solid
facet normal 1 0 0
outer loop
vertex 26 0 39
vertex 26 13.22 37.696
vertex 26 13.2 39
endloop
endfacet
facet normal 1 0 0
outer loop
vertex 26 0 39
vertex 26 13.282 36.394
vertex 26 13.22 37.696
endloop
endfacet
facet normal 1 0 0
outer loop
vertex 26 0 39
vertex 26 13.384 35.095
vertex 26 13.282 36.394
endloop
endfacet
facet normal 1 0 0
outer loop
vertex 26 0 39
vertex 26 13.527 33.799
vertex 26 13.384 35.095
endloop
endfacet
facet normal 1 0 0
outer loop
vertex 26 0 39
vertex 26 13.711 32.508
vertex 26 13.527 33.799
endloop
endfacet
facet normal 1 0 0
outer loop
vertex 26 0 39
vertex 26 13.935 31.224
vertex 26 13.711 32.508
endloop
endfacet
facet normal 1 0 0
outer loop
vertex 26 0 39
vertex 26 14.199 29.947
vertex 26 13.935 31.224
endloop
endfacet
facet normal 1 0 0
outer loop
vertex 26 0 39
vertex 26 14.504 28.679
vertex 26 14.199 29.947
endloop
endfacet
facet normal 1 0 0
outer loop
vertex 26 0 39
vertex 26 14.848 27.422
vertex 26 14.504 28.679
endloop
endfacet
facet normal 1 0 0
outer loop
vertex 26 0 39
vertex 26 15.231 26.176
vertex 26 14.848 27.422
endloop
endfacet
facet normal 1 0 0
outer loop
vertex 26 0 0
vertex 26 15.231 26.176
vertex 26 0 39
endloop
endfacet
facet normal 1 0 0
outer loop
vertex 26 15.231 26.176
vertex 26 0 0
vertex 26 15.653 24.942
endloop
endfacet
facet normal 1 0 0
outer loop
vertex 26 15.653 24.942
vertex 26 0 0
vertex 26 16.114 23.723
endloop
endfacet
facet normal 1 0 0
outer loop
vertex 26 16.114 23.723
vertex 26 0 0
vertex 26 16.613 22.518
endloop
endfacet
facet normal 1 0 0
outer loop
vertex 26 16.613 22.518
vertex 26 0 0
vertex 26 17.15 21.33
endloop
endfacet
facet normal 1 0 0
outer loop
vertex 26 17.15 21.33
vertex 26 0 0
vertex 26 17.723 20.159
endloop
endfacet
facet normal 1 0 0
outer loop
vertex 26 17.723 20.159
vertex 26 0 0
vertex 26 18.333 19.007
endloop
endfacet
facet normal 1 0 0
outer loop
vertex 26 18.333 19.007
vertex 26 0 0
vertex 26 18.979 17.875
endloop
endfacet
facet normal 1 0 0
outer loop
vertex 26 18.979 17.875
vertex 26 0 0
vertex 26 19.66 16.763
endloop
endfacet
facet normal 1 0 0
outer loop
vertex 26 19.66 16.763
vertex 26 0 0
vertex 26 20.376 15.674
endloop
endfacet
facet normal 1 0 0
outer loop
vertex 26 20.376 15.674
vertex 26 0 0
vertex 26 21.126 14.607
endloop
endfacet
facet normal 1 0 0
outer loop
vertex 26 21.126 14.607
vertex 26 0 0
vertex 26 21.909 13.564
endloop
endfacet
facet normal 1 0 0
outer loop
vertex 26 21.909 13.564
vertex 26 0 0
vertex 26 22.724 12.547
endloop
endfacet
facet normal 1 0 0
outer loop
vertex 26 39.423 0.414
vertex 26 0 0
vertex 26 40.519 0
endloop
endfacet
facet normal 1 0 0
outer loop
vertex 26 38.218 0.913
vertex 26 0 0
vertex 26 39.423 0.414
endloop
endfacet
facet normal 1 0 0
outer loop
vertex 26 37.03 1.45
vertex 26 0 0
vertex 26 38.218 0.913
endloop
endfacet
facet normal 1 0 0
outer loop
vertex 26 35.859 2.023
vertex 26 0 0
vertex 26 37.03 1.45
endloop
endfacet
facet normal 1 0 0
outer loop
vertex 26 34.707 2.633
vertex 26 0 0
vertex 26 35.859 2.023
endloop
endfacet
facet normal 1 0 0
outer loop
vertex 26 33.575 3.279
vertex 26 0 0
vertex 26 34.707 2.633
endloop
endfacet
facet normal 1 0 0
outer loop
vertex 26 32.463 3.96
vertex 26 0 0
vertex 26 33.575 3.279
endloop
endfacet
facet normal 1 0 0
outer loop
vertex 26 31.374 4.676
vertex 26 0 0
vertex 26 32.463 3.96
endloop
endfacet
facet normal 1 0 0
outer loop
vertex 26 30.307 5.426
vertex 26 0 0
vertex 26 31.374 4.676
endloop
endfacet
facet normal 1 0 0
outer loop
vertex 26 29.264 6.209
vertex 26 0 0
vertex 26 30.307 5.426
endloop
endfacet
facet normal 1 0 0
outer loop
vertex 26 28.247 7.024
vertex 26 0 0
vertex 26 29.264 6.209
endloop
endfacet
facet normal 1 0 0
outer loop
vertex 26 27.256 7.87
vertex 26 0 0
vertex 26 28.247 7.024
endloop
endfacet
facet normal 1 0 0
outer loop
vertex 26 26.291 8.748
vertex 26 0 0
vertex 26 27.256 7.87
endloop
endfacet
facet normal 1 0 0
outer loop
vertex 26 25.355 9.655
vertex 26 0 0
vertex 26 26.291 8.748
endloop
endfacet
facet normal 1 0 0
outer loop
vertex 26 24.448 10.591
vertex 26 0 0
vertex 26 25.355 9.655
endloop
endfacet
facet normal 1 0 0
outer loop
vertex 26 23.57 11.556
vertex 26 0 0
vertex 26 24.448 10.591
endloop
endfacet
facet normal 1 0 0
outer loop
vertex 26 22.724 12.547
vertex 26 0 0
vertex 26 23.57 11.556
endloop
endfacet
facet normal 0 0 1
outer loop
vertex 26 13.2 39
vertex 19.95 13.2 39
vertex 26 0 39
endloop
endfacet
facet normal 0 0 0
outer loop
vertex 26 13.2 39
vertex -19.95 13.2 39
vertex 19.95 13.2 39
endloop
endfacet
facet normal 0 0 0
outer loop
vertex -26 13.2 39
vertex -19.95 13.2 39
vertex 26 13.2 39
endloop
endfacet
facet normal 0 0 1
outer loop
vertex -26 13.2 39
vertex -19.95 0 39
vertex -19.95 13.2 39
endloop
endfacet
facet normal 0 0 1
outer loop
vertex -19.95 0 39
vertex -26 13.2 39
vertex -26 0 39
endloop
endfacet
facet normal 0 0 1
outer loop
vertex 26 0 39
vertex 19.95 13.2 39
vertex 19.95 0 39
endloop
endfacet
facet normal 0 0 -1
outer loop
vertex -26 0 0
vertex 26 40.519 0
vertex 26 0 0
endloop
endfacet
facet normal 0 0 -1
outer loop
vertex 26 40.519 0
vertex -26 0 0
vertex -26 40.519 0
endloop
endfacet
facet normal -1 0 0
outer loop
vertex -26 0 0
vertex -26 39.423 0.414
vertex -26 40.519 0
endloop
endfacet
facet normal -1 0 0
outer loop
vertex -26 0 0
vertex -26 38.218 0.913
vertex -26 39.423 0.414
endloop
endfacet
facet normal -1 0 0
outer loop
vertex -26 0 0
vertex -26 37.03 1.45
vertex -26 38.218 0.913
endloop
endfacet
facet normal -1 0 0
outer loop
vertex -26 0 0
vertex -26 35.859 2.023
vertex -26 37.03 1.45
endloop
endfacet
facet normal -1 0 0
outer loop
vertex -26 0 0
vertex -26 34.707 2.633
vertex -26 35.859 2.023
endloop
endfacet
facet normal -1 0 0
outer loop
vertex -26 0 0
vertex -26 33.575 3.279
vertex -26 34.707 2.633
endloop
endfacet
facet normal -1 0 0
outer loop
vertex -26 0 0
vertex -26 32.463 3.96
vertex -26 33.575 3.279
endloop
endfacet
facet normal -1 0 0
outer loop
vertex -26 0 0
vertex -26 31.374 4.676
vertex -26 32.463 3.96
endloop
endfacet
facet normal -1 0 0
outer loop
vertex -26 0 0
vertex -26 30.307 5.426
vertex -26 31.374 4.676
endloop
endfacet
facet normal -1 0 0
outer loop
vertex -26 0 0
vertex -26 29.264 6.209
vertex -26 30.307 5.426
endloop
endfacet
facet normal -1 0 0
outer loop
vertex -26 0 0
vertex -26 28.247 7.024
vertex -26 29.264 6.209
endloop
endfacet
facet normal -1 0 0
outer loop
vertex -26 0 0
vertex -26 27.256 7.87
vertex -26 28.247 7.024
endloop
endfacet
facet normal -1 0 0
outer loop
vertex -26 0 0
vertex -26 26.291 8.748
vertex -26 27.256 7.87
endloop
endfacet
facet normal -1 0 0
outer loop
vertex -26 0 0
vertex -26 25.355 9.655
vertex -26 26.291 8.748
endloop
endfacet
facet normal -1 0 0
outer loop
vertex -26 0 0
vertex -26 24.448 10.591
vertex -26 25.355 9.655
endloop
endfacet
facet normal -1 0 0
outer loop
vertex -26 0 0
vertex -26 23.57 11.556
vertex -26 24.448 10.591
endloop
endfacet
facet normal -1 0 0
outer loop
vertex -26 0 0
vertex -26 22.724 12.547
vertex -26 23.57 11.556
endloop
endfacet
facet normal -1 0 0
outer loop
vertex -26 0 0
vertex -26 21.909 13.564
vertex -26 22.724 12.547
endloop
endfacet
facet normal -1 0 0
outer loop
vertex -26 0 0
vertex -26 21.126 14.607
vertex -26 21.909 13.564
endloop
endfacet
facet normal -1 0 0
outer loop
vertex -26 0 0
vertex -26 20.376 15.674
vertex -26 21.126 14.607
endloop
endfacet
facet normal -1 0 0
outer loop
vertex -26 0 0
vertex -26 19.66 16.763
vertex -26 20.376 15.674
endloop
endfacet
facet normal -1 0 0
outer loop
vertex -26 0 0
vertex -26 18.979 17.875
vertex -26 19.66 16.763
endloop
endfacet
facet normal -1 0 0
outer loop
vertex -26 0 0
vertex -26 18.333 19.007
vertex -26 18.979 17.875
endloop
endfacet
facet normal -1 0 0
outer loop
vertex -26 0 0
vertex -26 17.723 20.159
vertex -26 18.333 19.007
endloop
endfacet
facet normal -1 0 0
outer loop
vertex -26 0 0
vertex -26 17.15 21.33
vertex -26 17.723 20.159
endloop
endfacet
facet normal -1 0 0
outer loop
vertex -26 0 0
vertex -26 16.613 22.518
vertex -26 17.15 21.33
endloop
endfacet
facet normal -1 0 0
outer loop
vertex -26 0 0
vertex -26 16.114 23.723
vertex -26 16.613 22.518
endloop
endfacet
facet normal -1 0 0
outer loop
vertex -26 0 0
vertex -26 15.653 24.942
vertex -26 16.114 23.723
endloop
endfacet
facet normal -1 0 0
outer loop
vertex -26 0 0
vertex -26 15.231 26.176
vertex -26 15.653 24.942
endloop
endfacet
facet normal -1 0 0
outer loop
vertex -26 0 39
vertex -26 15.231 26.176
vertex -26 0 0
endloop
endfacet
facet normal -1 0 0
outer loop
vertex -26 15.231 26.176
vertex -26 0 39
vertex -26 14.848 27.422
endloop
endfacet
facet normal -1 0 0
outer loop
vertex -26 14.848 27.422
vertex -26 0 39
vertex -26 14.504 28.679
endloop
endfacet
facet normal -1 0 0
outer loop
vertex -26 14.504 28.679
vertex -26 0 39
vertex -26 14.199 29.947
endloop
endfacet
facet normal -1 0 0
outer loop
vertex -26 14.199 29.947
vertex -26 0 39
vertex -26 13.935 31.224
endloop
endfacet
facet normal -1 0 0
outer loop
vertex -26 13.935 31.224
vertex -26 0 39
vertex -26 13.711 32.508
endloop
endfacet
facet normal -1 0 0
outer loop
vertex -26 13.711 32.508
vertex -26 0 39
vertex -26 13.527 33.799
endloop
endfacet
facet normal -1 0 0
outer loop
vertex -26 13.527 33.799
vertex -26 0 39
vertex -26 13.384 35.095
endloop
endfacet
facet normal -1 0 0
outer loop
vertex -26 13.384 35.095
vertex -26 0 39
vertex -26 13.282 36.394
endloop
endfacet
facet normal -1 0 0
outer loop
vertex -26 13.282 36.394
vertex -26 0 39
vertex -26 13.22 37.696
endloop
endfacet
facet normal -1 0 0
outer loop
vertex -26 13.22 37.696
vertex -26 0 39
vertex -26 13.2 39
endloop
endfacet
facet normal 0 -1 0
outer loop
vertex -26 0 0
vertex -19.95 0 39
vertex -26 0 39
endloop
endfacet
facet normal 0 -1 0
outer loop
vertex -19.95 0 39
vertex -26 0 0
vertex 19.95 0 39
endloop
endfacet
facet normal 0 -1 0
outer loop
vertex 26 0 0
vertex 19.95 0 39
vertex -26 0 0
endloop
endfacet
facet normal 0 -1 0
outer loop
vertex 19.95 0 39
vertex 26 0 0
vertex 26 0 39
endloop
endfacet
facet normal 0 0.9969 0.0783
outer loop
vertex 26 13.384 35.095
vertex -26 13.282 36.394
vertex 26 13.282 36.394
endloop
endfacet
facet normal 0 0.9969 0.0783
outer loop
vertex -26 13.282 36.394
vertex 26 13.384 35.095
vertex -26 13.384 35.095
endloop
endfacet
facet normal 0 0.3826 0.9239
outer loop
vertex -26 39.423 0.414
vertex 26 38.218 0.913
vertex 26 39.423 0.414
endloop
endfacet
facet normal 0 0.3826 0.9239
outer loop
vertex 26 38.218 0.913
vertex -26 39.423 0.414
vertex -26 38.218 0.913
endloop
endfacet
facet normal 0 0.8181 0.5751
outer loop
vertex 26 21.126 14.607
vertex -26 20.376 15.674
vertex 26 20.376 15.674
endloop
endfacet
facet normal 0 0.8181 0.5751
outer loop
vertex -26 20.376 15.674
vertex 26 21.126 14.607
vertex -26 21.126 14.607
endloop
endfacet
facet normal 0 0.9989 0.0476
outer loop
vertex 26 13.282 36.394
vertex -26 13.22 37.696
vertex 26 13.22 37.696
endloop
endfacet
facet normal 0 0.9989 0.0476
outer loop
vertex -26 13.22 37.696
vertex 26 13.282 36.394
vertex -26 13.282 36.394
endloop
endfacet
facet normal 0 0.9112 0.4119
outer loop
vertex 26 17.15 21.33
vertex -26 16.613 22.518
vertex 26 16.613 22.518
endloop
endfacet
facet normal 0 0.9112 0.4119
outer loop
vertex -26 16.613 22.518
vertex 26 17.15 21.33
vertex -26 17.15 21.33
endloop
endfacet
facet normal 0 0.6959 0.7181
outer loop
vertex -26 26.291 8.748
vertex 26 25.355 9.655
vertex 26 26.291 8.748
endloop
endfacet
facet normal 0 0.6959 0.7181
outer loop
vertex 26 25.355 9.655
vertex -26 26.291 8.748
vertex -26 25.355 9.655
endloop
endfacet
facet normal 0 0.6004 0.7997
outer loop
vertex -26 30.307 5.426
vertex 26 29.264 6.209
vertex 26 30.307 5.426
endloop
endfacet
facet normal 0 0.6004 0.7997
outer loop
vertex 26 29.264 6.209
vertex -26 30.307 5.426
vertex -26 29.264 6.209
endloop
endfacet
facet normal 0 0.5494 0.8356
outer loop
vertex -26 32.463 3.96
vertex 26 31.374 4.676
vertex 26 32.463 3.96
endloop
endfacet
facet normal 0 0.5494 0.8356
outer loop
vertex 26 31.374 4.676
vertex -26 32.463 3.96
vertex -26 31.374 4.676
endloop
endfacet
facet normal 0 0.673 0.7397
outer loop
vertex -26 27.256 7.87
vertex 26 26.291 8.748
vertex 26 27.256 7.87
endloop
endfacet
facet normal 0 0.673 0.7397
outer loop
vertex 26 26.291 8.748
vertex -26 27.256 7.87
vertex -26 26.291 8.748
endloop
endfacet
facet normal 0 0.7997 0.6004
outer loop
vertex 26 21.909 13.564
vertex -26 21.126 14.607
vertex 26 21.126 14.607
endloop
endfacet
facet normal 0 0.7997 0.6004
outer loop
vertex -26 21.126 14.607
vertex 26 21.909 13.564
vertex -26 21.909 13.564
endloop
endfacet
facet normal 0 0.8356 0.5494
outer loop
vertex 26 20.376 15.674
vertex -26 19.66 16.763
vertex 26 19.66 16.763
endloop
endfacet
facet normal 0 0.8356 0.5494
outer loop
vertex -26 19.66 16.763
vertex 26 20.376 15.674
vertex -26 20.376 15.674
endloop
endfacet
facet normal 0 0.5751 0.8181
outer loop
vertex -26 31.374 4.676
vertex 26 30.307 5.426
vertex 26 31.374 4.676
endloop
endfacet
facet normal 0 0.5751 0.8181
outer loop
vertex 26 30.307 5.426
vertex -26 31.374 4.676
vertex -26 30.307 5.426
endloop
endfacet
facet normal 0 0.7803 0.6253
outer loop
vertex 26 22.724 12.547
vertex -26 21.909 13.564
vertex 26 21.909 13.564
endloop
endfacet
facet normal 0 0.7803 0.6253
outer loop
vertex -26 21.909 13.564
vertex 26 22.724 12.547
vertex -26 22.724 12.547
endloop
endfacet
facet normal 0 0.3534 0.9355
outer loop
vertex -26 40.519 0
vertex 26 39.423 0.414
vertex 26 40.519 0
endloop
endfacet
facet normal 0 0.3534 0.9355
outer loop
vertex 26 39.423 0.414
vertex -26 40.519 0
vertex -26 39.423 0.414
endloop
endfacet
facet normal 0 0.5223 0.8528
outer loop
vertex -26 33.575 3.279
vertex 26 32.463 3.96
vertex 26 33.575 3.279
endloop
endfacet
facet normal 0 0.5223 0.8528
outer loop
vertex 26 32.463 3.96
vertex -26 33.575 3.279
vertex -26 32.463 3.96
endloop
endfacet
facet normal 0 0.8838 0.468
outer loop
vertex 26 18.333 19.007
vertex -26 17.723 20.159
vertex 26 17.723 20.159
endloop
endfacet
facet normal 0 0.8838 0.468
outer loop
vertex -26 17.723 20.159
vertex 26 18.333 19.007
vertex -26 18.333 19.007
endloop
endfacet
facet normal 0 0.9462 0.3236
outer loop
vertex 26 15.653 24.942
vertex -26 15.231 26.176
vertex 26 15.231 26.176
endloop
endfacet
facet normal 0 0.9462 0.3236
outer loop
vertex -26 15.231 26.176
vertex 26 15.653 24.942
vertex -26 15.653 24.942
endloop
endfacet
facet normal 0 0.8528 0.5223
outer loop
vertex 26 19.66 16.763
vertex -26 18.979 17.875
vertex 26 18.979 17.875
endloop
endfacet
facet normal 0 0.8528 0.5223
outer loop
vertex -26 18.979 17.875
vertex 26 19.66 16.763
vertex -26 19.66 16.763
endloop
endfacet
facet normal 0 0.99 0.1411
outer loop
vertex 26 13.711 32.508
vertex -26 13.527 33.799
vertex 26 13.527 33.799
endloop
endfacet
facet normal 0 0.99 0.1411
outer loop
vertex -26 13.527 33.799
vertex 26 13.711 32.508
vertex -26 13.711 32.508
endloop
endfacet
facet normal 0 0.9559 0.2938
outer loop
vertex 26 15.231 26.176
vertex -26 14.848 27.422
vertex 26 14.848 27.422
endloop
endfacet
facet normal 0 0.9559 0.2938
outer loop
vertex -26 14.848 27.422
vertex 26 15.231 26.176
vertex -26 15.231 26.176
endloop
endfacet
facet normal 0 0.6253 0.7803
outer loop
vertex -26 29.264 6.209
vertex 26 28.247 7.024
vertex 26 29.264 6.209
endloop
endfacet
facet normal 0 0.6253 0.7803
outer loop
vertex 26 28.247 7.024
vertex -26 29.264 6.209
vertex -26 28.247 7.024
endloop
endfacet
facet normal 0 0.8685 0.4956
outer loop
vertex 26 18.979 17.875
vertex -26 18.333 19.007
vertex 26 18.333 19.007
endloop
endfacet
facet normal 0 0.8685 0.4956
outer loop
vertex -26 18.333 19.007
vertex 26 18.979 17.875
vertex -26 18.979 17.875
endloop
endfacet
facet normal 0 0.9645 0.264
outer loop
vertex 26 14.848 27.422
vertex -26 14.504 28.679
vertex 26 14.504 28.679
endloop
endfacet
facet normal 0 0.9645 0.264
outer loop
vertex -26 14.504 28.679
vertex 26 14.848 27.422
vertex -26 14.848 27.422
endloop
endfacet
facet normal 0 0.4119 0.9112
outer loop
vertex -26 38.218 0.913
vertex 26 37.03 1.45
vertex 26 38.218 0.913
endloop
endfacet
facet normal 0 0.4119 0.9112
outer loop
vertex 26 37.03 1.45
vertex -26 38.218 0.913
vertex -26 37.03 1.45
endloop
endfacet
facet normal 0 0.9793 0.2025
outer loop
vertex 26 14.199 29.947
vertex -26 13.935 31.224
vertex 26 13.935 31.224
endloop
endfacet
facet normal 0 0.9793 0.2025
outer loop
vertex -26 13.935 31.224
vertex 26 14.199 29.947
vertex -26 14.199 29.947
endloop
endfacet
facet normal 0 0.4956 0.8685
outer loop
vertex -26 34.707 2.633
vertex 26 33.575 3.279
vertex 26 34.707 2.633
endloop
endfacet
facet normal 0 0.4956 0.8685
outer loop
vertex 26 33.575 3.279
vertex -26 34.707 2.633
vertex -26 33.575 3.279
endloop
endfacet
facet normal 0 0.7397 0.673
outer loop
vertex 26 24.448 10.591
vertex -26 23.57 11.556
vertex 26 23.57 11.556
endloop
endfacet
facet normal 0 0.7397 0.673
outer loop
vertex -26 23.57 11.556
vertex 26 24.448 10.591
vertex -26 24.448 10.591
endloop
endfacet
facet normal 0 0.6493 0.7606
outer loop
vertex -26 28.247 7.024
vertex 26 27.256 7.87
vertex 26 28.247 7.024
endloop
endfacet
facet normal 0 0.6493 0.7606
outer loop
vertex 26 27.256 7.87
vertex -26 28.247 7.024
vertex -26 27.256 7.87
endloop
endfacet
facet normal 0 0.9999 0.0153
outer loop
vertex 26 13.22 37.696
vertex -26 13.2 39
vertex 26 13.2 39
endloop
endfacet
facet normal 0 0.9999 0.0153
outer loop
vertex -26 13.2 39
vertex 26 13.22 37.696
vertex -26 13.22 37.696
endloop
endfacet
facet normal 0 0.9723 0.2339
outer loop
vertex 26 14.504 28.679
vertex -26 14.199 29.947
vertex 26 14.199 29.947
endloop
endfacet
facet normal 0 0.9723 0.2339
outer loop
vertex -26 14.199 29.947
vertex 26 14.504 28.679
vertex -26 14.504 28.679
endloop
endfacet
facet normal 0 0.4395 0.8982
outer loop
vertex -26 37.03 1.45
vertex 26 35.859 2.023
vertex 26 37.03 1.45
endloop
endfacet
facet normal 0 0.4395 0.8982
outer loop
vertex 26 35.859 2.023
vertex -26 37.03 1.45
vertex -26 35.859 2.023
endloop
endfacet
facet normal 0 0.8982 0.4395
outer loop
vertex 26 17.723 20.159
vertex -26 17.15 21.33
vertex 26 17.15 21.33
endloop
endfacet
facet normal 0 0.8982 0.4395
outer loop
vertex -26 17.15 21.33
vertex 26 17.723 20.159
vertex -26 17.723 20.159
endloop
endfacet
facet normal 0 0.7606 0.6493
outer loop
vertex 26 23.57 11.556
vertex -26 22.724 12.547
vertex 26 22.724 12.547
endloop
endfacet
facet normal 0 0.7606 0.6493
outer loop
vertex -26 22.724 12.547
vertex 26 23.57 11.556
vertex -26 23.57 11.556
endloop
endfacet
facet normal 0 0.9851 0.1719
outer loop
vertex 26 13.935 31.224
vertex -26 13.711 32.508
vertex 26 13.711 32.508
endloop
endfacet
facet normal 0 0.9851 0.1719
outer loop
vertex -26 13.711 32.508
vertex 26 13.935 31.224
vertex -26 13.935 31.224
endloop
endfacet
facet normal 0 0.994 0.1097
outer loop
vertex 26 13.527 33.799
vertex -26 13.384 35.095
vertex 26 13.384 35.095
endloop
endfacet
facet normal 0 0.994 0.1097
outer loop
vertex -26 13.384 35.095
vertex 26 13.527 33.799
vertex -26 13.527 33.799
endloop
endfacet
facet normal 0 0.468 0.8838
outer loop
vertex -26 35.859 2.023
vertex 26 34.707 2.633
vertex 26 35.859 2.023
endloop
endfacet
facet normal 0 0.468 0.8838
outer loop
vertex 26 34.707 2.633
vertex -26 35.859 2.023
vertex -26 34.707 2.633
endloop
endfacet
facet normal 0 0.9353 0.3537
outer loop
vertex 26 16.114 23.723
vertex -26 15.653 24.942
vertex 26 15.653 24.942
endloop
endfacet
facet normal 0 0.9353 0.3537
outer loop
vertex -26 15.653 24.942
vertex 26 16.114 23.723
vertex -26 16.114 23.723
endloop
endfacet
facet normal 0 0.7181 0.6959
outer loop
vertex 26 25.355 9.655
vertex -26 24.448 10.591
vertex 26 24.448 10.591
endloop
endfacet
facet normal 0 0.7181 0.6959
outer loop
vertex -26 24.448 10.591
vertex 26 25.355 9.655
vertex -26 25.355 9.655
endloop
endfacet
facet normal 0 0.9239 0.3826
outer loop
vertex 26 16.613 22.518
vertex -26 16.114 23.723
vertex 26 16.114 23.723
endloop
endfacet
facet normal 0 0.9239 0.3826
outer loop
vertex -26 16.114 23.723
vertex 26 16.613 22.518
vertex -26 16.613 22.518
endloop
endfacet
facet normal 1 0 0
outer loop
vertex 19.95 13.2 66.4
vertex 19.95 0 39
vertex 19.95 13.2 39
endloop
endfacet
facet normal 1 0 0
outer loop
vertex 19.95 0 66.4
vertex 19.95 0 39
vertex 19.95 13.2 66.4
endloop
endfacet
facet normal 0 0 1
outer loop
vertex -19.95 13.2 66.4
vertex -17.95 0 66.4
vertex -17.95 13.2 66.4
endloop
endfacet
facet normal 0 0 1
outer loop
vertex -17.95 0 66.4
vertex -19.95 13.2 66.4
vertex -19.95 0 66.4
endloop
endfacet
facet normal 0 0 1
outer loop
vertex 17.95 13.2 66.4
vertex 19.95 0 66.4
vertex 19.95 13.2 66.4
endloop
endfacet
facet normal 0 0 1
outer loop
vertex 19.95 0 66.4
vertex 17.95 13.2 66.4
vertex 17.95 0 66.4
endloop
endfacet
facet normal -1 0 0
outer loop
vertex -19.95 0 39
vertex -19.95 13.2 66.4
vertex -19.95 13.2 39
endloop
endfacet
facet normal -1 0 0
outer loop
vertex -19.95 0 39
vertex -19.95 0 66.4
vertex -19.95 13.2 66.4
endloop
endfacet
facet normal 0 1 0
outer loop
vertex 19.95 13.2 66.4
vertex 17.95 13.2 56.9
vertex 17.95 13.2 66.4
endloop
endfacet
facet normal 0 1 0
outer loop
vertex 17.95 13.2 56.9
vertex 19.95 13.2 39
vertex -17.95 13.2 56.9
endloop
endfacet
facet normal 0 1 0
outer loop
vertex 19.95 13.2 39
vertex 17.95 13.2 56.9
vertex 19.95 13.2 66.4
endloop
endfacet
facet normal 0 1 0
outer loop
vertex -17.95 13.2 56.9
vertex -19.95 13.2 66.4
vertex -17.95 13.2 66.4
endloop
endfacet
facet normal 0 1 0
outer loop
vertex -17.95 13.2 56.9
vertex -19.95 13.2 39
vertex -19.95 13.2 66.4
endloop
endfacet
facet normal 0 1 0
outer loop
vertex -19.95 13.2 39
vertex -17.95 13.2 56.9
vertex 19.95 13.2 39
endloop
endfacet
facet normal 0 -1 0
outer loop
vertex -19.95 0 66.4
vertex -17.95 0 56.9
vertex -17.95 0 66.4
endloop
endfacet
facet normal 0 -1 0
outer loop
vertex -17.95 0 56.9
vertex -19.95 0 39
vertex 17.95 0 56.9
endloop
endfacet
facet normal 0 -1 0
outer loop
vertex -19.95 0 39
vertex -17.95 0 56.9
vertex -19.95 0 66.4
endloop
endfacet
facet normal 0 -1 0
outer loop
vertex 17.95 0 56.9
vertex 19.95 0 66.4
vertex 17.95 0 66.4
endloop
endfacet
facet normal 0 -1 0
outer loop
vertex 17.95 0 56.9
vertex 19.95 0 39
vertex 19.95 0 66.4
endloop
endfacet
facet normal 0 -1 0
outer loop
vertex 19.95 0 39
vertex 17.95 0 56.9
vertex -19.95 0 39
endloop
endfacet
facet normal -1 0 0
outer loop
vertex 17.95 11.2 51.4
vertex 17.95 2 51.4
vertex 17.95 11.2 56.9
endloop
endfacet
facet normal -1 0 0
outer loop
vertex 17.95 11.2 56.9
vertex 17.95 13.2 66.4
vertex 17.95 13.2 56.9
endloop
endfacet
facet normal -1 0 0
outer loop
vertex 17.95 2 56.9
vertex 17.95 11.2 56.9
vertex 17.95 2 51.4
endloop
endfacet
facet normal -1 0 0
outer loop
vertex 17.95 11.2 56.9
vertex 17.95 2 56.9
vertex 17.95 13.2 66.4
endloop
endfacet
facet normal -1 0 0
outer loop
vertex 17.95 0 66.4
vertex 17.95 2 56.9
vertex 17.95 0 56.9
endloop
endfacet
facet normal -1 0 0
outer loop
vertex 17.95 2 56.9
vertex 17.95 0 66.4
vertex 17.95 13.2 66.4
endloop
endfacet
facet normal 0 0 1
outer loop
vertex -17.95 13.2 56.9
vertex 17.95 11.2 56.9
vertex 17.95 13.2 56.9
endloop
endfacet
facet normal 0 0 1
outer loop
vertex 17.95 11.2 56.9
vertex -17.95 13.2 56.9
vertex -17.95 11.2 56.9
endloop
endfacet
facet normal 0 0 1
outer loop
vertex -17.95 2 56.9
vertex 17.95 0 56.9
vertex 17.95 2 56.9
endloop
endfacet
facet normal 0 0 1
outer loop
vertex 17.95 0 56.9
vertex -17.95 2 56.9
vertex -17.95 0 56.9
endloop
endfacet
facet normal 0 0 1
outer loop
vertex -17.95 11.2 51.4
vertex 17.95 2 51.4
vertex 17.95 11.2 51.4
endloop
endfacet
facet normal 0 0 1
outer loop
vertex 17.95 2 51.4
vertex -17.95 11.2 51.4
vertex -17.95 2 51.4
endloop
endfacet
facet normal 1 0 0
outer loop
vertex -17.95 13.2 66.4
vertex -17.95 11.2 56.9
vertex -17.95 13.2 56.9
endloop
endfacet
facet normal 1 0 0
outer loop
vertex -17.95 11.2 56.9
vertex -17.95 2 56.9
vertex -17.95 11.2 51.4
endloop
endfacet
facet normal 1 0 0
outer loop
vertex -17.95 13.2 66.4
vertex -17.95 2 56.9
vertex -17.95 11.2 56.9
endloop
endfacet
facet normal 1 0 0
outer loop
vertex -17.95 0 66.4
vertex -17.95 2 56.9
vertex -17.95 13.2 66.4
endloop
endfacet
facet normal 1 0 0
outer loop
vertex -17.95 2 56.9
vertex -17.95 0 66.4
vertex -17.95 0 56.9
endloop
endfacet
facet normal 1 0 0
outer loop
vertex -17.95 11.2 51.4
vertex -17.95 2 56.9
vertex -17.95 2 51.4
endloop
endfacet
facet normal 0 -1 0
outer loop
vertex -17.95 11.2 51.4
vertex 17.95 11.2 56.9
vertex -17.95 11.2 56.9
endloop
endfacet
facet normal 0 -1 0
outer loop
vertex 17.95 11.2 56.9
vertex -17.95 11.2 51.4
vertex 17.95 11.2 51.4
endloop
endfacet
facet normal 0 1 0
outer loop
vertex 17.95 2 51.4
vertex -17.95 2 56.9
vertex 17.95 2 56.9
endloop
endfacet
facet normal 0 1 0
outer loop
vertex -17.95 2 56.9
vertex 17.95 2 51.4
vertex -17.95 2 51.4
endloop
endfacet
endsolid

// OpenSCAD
$fn = 200;

nest_w = 35.9;
nest_l = 9.2;
nest_h = 5.5;
nest_border = 2;
nest_support_h = 12.4;
nest_walls_h = 15;

base_w = 52;
base_l = 68;
base_h = 39;
base_podium_h = 15;


module Nest() {
    full_nest_height = nest_walls_h + nest_support_h;
    
    difference() {
        translate([0, 0, full_nest_height / 2]) 
            cube([nest_w + nest_border * 2, nest_l + nest_border * 2, full_nest_height], center = true);    
        translate([0, 0, nest_h / 2 + nest_support_h]) 
            cube([nest_w, nest_l, nest_h], center = true);

        translate([0, 0, nest_h + nest_walls_h / 2 + nest_support_h])
            cube([nest_w, nest_l + nest_border + 2, nest_walls_h], center = true);
    }
}

module Base() {

    difference() {
        translate([- base_w / 2, 0 ,0]) cube([base_w, base_l, base_h]);
        translate([-base_w / 2, base_l / 2 + nest_l + nest_border * 2 + base_podium_h / 2, base_h]) 
            rotate(90, [0, 1, 0]) 
                cylinder(h = base_w, d = base_l + base_podium_h);
    }
}

Base();
translate([0, (nest_l + nest_border * 2) / 2 - 0.0001, base_h]) Nest();
